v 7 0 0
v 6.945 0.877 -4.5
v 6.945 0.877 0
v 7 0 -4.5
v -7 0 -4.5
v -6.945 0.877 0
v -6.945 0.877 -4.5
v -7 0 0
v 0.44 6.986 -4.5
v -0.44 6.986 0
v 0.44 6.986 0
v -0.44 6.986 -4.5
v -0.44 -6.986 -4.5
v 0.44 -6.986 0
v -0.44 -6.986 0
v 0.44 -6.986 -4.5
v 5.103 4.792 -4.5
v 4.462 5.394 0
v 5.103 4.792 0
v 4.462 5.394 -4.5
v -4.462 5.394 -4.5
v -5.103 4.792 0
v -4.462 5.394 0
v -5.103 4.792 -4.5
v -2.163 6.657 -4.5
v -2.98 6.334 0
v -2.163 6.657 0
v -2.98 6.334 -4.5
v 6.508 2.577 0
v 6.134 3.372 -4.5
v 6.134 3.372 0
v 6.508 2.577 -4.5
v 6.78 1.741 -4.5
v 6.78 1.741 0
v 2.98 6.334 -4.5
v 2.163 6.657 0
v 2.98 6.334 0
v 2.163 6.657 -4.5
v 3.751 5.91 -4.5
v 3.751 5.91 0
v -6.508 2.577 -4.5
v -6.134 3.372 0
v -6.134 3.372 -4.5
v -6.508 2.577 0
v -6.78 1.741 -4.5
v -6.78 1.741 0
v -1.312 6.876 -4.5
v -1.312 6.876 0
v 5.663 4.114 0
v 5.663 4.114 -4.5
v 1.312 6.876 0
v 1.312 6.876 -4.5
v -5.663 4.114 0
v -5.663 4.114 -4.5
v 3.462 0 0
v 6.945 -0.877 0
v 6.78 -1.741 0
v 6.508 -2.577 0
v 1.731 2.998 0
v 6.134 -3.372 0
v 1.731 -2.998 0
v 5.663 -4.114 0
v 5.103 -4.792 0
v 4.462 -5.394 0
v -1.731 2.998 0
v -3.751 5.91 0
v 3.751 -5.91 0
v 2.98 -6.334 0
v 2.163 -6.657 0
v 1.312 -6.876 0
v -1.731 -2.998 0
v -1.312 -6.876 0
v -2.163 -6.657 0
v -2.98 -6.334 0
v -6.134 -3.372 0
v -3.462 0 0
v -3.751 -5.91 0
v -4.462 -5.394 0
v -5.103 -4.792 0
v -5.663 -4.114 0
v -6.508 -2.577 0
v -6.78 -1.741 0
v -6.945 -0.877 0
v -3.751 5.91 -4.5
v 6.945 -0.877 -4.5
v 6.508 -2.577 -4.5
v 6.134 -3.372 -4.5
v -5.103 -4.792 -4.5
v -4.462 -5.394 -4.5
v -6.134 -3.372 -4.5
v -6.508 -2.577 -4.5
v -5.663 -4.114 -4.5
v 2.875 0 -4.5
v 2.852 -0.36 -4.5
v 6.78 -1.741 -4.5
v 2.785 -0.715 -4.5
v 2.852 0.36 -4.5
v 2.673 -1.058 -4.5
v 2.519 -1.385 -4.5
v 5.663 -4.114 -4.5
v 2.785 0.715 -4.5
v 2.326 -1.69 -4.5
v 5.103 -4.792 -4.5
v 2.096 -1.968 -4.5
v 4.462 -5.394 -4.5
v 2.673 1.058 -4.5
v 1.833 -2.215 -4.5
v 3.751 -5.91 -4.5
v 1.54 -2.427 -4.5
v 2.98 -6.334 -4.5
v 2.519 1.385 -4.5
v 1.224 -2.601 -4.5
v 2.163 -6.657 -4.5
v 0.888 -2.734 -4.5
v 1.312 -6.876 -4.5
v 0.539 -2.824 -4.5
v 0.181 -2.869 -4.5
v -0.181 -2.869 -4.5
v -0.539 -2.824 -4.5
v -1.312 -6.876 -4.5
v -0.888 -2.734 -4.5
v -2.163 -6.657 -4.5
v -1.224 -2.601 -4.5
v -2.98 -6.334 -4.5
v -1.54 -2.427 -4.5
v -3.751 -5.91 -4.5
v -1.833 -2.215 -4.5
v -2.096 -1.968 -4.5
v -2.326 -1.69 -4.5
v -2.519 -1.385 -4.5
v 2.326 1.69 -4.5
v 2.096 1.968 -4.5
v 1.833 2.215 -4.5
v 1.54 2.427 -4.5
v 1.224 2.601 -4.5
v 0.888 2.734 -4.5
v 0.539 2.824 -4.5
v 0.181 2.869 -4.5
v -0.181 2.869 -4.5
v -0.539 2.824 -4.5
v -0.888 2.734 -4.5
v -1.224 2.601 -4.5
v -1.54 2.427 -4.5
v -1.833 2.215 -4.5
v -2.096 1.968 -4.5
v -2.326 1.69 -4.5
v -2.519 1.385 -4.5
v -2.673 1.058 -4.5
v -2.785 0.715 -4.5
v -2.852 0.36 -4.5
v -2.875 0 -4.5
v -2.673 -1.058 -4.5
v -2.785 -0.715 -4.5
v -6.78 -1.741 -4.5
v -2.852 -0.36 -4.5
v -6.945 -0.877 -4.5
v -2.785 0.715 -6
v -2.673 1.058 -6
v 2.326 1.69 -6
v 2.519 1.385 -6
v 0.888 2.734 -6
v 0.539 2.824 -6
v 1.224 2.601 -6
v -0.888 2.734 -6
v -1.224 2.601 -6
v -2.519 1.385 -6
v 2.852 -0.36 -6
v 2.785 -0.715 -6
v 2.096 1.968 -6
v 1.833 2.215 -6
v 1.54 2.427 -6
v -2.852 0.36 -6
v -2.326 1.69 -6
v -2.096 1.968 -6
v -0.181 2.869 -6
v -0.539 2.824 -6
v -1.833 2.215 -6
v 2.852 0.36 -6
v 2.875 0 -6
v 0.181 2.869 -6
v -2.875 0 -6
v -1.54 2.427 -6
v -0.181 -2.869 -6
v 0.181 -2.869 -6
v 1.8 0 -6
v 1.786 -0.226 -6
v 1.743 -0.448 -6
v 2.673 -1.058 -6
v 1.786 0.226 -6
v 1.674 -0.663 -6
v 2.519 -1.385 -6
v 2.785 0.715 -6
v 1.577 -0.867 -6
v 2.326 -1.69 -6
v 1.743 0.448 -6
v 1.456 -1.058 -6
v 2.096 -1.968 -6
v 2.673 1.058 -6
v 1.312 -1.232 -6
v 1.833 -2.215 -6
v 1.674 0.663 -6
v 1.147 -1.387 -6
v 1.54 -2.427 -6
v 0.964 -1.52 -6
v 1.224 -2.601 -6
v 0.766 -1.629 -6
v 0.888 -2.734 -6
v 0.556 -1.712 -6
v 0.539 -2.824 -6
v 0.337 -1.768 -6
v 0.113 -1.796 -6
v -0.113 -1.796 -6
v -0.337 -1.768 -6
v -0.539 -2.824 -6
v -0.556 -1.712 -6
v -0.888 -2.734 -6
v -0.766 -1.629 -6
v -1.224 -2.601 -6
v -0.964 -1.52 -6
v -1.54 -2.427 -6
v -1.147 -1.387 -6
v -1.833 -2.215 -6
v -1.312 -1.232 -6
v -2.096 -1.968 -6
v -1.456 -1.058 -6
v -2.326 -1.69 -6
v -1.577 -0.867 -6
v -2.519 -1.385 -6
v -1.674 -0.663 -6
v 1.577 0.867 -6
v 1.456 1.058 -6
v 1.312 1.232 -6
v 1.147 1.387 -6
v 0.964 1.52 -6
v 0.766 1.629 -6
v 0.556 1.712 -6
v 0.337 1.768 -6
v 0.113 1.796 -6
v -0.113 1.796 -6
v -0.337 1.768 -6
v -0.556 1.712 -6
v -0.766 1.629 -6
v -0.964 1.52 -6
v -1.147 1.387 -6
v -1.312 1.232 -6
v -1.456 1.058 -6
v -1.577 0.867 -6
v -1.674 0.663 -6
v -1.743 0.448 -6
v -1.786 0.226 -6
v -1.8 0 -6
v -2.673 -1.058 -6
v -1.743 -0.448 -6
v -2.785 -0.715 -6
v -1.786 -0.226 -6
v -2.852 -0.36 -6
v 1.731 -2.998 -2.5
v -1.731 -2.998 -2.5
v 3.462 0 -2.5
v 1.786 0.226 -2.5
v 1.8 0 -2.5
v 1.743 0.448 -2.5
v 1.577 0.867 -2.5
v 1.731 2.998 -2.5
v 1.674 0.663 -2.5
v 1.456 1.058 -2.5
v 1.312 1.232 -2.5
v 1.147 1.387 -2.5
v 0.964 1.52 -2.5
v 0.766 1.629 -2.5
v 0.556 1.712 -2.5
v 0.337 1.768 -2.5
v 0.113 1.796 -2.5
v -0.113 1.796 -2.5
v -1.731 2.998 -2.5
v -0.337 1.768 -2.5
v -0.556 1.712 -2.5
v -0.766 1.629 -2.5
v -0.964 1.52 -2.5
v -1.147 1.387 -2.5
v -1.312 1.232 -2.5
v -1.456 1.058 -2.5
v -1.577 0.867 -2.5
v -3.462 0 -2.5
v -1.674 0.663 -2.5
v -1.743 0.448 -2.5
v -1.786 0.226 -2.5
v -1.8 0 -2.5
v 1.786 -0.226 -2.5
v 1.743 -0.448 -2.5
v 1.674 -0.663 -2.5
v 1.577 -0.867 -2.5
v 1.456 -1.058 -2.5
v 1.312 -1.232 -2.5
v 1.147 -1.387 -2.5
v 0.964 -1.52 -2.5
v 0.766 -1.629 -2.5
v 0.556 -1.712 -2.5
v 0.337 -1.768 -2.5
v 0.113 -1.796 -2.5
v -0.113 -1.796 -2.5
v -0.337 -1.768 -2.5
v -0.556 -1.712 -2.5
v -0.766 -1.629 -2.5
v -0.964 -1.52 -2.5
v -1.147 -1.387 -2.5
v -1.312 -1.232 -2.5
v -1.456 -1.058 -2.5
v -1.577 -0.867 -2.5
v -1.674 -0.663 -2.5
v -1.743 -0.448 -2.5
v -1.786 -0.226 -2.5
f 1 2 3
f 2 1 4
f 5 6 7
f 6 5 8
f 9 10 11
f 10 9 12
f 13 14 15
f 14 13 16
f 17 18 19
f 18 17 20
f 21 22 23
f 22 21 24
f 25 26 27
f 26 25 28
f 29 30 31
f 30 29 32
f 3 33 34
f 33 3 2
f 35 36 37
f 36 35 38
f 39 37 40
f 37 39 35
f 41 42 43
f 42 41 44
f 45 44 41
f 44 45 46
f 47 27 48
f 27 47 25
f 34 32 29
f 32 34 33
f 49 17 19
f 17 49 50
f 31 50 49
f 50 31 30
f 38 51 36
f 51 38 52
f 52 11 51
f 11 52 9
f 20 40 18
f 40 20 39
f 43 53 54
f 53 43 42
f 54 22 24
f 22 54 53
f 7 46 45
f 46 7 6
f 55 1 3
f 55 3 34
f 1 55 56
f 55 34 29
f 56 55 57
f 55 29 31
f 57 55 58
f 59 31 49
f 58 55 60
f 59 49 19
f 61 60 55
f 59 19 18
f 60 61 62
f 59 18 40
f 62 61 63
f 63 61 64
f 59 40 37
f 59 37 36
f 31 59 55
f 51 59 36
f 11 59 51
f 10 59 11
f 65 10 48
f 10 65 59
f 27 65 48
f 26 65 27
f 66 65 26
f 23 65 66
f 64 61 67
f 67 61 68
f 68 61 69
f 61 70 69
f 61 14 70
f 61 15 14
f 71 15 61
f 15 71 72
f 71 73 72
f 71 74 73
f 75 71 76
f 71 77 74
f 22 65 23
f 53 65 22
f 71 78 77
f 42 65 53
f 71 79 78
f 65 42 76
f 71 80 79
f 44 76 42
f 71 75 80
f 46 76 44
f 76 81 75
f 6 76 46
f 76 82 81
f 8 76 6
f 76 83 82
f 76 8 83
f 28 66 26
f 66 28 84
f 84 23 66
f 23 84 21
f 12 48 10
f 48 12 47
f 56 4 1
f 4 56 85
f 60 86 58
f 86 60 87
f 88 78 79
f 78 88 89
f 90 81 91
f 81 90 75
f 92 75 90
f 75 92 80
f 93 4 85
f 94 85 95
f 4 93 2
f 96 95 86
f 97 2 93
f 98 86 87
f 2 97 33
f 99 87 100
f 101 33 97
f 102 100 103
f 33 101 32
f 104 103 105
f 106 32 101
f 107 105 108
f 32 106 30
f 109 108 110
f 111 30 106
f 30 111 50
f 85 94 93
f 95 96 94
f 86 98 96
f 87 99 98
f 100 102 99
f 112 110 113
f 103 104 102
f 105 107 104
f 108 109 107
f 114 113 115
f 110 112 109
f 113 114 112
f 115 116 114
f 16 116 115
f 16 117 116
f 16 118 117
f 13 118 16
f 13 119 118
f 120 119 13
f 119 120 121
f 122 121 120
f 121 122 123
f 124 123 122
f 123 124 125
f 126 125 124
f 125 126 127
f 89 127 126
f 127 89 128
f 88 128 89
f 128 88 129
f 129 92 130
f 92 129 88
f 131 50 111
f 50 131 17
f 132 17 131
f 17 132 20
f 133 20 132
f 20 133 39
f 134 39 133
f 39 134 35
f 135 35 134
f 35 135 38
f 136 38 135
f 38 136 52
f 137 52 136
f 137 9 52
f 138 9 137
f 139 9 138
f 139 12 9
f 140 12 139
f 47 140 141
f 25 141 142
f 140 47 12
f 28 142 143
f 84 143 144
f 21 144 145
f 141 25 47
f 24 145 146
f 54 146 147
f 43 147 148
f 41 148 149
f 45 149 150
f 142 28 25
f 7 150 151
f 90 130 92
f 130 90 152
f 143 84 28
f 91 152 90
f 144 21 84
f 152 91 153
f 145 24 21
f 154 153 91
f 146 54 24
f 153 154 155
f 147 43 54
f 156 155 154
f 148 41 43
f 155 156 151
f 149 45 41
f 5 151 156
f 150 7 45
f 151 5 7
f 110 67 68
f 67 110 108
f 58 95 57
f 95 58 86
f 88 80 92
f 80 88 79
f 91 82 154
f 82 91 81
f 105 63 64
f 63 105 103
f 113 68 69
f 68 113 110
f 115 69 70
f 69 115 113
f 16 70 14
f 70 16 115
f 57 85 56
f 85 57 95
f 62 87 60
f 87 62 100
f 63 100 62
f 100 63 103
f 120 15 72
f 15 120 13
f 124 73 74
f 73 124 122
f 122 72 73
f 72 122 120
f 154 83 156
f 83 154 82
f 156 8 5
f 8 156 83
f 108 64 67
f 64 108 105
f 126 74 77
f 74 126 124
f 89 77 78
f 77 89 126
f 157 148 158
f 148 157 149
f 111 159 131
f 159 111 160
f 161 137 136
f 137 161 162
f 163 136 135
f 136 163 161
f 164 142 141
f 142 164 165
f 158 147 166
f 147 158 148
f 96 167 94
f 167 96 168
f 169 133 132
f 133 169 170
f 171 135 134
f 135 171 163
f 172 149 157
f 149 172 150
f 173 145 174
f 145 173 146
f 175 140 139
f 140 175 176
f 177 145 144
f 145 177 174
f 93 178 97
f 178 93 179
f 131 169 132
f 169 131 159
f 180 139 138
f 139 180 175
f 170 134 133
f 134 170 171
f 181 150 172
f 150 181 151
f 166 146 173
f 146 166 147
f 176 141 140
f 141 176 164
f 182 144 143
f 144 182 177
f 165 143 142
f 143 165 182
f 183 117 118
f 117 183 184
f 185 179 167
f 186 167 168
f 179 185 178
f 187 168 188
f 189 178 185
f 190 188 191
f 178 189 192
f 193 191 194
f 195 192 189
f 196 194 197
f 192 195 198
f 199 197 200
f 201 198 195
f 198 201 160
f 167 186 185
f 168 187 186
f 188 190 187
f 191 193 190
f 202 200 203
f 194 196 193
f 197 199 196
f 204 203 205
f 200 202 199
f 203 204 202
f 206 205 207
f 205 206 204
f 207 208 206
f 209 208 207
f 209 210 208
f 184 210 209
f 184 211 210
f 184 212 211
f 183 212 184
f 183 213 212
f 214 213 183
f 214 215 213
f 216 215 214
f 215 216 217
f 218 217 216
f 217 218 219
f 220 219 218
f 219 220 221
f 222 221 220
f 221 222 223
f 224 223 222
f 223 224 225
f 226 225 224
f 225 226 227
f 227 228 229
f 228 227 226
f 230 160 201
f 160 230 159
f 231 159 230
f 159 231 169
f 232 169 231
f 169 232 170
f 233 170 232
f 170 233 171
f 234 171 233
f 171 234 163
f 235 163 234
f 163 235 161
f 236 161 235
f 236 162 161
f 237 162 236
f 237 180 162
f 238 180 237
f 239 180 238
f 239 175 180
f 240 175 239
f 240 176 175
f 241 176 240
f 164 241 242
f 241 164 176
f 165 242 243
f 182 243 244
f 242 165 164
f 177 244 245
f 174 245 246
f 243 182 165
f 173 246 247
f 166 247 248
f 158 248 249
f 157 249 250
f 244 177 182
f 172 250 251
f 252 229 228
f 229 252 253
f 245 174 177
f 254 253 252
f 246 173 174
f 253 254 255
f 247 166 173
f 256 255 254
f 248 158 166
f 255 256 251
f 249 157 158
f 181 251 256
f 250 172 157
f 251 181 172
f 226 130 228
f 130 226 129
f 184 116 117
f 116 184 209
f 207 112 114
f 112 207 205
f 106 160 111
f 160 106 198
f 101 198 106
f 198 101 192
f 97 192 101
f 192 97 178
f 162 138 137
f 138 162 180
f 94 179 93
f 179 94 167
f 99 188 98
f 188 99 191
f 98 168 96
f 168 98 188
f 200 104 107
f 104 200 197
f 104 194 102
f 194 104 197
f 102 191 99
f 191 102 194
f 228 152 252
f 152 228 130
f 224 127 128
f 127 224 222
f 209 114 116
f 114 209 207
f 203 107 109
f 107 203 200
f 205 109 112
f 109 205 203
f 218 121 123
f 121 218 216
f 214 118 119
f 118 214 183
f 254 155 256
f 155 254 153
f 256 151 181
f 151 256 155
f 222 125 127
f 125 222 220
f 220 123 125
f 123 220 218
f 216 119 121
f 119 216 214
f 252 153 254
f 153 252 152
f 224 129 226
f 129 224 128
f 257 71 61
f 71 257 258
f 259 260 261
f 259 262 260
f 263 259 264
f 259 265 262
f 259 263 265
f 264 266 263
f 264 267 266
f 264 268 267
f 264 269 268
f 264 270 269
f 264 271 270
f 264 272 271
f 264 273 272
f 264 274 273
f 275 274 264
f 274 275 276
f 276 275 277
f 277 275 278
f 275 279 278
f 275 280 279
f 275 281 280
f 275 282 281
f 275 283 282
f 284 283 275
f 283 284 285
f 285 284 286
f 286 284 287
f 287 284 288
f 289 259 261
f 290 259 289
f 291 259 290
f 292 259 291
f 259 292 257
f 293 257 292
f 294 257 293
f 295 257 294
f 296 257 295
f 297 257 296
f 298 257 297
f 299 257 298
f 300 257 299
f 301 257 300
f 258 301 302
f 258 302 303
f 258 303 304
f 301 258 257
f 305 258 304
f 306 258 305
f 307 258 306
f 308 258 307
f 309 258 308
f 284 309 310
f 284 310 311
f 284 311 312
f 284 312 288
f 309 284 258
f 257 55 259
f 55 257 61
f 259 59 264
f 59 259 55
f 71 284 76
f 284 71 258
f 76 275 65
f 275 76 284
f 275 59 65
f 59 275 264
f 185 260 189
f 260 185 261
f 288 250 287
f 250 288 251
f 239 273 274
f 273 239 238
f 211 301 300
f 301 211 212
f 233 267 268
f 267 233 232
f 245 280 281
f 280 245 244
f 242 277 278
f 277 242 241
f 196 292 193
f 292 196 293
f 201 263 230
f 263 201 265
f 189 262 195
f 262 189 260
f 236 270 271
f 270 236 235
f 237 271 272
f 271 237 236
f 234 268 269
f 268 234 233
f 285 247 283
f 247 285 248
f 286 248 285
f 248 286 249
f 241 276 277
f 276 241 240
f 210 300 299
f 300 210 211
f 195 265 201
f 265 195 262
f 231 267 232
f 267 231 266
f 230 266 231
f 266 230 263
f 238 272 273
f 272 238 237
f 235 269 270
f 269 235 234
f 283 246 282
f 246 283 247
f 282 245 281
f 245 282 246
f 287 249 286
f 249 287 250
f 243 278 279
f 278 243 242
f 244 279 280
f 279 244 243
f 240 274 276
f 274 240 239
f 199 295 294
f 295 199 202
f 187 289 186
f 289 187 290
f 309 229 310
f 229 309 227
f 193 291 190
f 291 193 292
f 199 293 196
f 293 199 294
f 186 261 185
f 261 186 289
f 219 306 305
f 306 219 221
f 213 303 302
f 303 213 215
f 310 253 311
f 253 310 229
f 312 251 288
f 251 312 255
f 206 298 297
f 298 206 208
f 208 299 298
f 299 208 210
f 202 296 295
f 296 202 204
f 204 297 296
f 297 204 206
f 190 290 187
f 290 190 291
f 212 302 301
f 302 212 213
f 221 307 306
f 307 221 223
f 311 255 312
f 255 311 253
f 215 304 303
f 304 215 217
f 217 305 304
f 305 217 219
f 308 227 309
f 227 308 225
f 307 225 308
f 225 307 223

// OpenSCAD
$fn = 50;

difference() {
	union() {
		translate(v = [0, 0, -4.5]) {
			cylinder(h = 4.5, r = 7.0);
		}
		#translate(v = [0, 0, -6.0]) {
			cylinder(h = 6, r = 2.875);
		}
	}
	union() {
		translate(v = [0, 0, 0]) {
			rotate(a = [0, 0, 0]) {
				difference() {
					union() {
						translate(v = [0, 0, -2.5]) {
							linear_extrude(height = 2.5) {
								polygon(points = [[3.4619999999999997, 0.0], [1.7310000000000003, 2.9981799479017264], [-1.7309999999999992, 2.9981799479017264], [-3.4619999999999997, 4.2397272186481365e-16], [-1.7310000000000014, -2.998179947901726], [1.7309999999999977, -2.9981799479017277]]);
							}
						}
					}
					union();
				}
			}
		}
		#translate(v = [0, 0, -100.0]) {
			cylinder(h = 200, r = 1.8);
		}
	}
}
